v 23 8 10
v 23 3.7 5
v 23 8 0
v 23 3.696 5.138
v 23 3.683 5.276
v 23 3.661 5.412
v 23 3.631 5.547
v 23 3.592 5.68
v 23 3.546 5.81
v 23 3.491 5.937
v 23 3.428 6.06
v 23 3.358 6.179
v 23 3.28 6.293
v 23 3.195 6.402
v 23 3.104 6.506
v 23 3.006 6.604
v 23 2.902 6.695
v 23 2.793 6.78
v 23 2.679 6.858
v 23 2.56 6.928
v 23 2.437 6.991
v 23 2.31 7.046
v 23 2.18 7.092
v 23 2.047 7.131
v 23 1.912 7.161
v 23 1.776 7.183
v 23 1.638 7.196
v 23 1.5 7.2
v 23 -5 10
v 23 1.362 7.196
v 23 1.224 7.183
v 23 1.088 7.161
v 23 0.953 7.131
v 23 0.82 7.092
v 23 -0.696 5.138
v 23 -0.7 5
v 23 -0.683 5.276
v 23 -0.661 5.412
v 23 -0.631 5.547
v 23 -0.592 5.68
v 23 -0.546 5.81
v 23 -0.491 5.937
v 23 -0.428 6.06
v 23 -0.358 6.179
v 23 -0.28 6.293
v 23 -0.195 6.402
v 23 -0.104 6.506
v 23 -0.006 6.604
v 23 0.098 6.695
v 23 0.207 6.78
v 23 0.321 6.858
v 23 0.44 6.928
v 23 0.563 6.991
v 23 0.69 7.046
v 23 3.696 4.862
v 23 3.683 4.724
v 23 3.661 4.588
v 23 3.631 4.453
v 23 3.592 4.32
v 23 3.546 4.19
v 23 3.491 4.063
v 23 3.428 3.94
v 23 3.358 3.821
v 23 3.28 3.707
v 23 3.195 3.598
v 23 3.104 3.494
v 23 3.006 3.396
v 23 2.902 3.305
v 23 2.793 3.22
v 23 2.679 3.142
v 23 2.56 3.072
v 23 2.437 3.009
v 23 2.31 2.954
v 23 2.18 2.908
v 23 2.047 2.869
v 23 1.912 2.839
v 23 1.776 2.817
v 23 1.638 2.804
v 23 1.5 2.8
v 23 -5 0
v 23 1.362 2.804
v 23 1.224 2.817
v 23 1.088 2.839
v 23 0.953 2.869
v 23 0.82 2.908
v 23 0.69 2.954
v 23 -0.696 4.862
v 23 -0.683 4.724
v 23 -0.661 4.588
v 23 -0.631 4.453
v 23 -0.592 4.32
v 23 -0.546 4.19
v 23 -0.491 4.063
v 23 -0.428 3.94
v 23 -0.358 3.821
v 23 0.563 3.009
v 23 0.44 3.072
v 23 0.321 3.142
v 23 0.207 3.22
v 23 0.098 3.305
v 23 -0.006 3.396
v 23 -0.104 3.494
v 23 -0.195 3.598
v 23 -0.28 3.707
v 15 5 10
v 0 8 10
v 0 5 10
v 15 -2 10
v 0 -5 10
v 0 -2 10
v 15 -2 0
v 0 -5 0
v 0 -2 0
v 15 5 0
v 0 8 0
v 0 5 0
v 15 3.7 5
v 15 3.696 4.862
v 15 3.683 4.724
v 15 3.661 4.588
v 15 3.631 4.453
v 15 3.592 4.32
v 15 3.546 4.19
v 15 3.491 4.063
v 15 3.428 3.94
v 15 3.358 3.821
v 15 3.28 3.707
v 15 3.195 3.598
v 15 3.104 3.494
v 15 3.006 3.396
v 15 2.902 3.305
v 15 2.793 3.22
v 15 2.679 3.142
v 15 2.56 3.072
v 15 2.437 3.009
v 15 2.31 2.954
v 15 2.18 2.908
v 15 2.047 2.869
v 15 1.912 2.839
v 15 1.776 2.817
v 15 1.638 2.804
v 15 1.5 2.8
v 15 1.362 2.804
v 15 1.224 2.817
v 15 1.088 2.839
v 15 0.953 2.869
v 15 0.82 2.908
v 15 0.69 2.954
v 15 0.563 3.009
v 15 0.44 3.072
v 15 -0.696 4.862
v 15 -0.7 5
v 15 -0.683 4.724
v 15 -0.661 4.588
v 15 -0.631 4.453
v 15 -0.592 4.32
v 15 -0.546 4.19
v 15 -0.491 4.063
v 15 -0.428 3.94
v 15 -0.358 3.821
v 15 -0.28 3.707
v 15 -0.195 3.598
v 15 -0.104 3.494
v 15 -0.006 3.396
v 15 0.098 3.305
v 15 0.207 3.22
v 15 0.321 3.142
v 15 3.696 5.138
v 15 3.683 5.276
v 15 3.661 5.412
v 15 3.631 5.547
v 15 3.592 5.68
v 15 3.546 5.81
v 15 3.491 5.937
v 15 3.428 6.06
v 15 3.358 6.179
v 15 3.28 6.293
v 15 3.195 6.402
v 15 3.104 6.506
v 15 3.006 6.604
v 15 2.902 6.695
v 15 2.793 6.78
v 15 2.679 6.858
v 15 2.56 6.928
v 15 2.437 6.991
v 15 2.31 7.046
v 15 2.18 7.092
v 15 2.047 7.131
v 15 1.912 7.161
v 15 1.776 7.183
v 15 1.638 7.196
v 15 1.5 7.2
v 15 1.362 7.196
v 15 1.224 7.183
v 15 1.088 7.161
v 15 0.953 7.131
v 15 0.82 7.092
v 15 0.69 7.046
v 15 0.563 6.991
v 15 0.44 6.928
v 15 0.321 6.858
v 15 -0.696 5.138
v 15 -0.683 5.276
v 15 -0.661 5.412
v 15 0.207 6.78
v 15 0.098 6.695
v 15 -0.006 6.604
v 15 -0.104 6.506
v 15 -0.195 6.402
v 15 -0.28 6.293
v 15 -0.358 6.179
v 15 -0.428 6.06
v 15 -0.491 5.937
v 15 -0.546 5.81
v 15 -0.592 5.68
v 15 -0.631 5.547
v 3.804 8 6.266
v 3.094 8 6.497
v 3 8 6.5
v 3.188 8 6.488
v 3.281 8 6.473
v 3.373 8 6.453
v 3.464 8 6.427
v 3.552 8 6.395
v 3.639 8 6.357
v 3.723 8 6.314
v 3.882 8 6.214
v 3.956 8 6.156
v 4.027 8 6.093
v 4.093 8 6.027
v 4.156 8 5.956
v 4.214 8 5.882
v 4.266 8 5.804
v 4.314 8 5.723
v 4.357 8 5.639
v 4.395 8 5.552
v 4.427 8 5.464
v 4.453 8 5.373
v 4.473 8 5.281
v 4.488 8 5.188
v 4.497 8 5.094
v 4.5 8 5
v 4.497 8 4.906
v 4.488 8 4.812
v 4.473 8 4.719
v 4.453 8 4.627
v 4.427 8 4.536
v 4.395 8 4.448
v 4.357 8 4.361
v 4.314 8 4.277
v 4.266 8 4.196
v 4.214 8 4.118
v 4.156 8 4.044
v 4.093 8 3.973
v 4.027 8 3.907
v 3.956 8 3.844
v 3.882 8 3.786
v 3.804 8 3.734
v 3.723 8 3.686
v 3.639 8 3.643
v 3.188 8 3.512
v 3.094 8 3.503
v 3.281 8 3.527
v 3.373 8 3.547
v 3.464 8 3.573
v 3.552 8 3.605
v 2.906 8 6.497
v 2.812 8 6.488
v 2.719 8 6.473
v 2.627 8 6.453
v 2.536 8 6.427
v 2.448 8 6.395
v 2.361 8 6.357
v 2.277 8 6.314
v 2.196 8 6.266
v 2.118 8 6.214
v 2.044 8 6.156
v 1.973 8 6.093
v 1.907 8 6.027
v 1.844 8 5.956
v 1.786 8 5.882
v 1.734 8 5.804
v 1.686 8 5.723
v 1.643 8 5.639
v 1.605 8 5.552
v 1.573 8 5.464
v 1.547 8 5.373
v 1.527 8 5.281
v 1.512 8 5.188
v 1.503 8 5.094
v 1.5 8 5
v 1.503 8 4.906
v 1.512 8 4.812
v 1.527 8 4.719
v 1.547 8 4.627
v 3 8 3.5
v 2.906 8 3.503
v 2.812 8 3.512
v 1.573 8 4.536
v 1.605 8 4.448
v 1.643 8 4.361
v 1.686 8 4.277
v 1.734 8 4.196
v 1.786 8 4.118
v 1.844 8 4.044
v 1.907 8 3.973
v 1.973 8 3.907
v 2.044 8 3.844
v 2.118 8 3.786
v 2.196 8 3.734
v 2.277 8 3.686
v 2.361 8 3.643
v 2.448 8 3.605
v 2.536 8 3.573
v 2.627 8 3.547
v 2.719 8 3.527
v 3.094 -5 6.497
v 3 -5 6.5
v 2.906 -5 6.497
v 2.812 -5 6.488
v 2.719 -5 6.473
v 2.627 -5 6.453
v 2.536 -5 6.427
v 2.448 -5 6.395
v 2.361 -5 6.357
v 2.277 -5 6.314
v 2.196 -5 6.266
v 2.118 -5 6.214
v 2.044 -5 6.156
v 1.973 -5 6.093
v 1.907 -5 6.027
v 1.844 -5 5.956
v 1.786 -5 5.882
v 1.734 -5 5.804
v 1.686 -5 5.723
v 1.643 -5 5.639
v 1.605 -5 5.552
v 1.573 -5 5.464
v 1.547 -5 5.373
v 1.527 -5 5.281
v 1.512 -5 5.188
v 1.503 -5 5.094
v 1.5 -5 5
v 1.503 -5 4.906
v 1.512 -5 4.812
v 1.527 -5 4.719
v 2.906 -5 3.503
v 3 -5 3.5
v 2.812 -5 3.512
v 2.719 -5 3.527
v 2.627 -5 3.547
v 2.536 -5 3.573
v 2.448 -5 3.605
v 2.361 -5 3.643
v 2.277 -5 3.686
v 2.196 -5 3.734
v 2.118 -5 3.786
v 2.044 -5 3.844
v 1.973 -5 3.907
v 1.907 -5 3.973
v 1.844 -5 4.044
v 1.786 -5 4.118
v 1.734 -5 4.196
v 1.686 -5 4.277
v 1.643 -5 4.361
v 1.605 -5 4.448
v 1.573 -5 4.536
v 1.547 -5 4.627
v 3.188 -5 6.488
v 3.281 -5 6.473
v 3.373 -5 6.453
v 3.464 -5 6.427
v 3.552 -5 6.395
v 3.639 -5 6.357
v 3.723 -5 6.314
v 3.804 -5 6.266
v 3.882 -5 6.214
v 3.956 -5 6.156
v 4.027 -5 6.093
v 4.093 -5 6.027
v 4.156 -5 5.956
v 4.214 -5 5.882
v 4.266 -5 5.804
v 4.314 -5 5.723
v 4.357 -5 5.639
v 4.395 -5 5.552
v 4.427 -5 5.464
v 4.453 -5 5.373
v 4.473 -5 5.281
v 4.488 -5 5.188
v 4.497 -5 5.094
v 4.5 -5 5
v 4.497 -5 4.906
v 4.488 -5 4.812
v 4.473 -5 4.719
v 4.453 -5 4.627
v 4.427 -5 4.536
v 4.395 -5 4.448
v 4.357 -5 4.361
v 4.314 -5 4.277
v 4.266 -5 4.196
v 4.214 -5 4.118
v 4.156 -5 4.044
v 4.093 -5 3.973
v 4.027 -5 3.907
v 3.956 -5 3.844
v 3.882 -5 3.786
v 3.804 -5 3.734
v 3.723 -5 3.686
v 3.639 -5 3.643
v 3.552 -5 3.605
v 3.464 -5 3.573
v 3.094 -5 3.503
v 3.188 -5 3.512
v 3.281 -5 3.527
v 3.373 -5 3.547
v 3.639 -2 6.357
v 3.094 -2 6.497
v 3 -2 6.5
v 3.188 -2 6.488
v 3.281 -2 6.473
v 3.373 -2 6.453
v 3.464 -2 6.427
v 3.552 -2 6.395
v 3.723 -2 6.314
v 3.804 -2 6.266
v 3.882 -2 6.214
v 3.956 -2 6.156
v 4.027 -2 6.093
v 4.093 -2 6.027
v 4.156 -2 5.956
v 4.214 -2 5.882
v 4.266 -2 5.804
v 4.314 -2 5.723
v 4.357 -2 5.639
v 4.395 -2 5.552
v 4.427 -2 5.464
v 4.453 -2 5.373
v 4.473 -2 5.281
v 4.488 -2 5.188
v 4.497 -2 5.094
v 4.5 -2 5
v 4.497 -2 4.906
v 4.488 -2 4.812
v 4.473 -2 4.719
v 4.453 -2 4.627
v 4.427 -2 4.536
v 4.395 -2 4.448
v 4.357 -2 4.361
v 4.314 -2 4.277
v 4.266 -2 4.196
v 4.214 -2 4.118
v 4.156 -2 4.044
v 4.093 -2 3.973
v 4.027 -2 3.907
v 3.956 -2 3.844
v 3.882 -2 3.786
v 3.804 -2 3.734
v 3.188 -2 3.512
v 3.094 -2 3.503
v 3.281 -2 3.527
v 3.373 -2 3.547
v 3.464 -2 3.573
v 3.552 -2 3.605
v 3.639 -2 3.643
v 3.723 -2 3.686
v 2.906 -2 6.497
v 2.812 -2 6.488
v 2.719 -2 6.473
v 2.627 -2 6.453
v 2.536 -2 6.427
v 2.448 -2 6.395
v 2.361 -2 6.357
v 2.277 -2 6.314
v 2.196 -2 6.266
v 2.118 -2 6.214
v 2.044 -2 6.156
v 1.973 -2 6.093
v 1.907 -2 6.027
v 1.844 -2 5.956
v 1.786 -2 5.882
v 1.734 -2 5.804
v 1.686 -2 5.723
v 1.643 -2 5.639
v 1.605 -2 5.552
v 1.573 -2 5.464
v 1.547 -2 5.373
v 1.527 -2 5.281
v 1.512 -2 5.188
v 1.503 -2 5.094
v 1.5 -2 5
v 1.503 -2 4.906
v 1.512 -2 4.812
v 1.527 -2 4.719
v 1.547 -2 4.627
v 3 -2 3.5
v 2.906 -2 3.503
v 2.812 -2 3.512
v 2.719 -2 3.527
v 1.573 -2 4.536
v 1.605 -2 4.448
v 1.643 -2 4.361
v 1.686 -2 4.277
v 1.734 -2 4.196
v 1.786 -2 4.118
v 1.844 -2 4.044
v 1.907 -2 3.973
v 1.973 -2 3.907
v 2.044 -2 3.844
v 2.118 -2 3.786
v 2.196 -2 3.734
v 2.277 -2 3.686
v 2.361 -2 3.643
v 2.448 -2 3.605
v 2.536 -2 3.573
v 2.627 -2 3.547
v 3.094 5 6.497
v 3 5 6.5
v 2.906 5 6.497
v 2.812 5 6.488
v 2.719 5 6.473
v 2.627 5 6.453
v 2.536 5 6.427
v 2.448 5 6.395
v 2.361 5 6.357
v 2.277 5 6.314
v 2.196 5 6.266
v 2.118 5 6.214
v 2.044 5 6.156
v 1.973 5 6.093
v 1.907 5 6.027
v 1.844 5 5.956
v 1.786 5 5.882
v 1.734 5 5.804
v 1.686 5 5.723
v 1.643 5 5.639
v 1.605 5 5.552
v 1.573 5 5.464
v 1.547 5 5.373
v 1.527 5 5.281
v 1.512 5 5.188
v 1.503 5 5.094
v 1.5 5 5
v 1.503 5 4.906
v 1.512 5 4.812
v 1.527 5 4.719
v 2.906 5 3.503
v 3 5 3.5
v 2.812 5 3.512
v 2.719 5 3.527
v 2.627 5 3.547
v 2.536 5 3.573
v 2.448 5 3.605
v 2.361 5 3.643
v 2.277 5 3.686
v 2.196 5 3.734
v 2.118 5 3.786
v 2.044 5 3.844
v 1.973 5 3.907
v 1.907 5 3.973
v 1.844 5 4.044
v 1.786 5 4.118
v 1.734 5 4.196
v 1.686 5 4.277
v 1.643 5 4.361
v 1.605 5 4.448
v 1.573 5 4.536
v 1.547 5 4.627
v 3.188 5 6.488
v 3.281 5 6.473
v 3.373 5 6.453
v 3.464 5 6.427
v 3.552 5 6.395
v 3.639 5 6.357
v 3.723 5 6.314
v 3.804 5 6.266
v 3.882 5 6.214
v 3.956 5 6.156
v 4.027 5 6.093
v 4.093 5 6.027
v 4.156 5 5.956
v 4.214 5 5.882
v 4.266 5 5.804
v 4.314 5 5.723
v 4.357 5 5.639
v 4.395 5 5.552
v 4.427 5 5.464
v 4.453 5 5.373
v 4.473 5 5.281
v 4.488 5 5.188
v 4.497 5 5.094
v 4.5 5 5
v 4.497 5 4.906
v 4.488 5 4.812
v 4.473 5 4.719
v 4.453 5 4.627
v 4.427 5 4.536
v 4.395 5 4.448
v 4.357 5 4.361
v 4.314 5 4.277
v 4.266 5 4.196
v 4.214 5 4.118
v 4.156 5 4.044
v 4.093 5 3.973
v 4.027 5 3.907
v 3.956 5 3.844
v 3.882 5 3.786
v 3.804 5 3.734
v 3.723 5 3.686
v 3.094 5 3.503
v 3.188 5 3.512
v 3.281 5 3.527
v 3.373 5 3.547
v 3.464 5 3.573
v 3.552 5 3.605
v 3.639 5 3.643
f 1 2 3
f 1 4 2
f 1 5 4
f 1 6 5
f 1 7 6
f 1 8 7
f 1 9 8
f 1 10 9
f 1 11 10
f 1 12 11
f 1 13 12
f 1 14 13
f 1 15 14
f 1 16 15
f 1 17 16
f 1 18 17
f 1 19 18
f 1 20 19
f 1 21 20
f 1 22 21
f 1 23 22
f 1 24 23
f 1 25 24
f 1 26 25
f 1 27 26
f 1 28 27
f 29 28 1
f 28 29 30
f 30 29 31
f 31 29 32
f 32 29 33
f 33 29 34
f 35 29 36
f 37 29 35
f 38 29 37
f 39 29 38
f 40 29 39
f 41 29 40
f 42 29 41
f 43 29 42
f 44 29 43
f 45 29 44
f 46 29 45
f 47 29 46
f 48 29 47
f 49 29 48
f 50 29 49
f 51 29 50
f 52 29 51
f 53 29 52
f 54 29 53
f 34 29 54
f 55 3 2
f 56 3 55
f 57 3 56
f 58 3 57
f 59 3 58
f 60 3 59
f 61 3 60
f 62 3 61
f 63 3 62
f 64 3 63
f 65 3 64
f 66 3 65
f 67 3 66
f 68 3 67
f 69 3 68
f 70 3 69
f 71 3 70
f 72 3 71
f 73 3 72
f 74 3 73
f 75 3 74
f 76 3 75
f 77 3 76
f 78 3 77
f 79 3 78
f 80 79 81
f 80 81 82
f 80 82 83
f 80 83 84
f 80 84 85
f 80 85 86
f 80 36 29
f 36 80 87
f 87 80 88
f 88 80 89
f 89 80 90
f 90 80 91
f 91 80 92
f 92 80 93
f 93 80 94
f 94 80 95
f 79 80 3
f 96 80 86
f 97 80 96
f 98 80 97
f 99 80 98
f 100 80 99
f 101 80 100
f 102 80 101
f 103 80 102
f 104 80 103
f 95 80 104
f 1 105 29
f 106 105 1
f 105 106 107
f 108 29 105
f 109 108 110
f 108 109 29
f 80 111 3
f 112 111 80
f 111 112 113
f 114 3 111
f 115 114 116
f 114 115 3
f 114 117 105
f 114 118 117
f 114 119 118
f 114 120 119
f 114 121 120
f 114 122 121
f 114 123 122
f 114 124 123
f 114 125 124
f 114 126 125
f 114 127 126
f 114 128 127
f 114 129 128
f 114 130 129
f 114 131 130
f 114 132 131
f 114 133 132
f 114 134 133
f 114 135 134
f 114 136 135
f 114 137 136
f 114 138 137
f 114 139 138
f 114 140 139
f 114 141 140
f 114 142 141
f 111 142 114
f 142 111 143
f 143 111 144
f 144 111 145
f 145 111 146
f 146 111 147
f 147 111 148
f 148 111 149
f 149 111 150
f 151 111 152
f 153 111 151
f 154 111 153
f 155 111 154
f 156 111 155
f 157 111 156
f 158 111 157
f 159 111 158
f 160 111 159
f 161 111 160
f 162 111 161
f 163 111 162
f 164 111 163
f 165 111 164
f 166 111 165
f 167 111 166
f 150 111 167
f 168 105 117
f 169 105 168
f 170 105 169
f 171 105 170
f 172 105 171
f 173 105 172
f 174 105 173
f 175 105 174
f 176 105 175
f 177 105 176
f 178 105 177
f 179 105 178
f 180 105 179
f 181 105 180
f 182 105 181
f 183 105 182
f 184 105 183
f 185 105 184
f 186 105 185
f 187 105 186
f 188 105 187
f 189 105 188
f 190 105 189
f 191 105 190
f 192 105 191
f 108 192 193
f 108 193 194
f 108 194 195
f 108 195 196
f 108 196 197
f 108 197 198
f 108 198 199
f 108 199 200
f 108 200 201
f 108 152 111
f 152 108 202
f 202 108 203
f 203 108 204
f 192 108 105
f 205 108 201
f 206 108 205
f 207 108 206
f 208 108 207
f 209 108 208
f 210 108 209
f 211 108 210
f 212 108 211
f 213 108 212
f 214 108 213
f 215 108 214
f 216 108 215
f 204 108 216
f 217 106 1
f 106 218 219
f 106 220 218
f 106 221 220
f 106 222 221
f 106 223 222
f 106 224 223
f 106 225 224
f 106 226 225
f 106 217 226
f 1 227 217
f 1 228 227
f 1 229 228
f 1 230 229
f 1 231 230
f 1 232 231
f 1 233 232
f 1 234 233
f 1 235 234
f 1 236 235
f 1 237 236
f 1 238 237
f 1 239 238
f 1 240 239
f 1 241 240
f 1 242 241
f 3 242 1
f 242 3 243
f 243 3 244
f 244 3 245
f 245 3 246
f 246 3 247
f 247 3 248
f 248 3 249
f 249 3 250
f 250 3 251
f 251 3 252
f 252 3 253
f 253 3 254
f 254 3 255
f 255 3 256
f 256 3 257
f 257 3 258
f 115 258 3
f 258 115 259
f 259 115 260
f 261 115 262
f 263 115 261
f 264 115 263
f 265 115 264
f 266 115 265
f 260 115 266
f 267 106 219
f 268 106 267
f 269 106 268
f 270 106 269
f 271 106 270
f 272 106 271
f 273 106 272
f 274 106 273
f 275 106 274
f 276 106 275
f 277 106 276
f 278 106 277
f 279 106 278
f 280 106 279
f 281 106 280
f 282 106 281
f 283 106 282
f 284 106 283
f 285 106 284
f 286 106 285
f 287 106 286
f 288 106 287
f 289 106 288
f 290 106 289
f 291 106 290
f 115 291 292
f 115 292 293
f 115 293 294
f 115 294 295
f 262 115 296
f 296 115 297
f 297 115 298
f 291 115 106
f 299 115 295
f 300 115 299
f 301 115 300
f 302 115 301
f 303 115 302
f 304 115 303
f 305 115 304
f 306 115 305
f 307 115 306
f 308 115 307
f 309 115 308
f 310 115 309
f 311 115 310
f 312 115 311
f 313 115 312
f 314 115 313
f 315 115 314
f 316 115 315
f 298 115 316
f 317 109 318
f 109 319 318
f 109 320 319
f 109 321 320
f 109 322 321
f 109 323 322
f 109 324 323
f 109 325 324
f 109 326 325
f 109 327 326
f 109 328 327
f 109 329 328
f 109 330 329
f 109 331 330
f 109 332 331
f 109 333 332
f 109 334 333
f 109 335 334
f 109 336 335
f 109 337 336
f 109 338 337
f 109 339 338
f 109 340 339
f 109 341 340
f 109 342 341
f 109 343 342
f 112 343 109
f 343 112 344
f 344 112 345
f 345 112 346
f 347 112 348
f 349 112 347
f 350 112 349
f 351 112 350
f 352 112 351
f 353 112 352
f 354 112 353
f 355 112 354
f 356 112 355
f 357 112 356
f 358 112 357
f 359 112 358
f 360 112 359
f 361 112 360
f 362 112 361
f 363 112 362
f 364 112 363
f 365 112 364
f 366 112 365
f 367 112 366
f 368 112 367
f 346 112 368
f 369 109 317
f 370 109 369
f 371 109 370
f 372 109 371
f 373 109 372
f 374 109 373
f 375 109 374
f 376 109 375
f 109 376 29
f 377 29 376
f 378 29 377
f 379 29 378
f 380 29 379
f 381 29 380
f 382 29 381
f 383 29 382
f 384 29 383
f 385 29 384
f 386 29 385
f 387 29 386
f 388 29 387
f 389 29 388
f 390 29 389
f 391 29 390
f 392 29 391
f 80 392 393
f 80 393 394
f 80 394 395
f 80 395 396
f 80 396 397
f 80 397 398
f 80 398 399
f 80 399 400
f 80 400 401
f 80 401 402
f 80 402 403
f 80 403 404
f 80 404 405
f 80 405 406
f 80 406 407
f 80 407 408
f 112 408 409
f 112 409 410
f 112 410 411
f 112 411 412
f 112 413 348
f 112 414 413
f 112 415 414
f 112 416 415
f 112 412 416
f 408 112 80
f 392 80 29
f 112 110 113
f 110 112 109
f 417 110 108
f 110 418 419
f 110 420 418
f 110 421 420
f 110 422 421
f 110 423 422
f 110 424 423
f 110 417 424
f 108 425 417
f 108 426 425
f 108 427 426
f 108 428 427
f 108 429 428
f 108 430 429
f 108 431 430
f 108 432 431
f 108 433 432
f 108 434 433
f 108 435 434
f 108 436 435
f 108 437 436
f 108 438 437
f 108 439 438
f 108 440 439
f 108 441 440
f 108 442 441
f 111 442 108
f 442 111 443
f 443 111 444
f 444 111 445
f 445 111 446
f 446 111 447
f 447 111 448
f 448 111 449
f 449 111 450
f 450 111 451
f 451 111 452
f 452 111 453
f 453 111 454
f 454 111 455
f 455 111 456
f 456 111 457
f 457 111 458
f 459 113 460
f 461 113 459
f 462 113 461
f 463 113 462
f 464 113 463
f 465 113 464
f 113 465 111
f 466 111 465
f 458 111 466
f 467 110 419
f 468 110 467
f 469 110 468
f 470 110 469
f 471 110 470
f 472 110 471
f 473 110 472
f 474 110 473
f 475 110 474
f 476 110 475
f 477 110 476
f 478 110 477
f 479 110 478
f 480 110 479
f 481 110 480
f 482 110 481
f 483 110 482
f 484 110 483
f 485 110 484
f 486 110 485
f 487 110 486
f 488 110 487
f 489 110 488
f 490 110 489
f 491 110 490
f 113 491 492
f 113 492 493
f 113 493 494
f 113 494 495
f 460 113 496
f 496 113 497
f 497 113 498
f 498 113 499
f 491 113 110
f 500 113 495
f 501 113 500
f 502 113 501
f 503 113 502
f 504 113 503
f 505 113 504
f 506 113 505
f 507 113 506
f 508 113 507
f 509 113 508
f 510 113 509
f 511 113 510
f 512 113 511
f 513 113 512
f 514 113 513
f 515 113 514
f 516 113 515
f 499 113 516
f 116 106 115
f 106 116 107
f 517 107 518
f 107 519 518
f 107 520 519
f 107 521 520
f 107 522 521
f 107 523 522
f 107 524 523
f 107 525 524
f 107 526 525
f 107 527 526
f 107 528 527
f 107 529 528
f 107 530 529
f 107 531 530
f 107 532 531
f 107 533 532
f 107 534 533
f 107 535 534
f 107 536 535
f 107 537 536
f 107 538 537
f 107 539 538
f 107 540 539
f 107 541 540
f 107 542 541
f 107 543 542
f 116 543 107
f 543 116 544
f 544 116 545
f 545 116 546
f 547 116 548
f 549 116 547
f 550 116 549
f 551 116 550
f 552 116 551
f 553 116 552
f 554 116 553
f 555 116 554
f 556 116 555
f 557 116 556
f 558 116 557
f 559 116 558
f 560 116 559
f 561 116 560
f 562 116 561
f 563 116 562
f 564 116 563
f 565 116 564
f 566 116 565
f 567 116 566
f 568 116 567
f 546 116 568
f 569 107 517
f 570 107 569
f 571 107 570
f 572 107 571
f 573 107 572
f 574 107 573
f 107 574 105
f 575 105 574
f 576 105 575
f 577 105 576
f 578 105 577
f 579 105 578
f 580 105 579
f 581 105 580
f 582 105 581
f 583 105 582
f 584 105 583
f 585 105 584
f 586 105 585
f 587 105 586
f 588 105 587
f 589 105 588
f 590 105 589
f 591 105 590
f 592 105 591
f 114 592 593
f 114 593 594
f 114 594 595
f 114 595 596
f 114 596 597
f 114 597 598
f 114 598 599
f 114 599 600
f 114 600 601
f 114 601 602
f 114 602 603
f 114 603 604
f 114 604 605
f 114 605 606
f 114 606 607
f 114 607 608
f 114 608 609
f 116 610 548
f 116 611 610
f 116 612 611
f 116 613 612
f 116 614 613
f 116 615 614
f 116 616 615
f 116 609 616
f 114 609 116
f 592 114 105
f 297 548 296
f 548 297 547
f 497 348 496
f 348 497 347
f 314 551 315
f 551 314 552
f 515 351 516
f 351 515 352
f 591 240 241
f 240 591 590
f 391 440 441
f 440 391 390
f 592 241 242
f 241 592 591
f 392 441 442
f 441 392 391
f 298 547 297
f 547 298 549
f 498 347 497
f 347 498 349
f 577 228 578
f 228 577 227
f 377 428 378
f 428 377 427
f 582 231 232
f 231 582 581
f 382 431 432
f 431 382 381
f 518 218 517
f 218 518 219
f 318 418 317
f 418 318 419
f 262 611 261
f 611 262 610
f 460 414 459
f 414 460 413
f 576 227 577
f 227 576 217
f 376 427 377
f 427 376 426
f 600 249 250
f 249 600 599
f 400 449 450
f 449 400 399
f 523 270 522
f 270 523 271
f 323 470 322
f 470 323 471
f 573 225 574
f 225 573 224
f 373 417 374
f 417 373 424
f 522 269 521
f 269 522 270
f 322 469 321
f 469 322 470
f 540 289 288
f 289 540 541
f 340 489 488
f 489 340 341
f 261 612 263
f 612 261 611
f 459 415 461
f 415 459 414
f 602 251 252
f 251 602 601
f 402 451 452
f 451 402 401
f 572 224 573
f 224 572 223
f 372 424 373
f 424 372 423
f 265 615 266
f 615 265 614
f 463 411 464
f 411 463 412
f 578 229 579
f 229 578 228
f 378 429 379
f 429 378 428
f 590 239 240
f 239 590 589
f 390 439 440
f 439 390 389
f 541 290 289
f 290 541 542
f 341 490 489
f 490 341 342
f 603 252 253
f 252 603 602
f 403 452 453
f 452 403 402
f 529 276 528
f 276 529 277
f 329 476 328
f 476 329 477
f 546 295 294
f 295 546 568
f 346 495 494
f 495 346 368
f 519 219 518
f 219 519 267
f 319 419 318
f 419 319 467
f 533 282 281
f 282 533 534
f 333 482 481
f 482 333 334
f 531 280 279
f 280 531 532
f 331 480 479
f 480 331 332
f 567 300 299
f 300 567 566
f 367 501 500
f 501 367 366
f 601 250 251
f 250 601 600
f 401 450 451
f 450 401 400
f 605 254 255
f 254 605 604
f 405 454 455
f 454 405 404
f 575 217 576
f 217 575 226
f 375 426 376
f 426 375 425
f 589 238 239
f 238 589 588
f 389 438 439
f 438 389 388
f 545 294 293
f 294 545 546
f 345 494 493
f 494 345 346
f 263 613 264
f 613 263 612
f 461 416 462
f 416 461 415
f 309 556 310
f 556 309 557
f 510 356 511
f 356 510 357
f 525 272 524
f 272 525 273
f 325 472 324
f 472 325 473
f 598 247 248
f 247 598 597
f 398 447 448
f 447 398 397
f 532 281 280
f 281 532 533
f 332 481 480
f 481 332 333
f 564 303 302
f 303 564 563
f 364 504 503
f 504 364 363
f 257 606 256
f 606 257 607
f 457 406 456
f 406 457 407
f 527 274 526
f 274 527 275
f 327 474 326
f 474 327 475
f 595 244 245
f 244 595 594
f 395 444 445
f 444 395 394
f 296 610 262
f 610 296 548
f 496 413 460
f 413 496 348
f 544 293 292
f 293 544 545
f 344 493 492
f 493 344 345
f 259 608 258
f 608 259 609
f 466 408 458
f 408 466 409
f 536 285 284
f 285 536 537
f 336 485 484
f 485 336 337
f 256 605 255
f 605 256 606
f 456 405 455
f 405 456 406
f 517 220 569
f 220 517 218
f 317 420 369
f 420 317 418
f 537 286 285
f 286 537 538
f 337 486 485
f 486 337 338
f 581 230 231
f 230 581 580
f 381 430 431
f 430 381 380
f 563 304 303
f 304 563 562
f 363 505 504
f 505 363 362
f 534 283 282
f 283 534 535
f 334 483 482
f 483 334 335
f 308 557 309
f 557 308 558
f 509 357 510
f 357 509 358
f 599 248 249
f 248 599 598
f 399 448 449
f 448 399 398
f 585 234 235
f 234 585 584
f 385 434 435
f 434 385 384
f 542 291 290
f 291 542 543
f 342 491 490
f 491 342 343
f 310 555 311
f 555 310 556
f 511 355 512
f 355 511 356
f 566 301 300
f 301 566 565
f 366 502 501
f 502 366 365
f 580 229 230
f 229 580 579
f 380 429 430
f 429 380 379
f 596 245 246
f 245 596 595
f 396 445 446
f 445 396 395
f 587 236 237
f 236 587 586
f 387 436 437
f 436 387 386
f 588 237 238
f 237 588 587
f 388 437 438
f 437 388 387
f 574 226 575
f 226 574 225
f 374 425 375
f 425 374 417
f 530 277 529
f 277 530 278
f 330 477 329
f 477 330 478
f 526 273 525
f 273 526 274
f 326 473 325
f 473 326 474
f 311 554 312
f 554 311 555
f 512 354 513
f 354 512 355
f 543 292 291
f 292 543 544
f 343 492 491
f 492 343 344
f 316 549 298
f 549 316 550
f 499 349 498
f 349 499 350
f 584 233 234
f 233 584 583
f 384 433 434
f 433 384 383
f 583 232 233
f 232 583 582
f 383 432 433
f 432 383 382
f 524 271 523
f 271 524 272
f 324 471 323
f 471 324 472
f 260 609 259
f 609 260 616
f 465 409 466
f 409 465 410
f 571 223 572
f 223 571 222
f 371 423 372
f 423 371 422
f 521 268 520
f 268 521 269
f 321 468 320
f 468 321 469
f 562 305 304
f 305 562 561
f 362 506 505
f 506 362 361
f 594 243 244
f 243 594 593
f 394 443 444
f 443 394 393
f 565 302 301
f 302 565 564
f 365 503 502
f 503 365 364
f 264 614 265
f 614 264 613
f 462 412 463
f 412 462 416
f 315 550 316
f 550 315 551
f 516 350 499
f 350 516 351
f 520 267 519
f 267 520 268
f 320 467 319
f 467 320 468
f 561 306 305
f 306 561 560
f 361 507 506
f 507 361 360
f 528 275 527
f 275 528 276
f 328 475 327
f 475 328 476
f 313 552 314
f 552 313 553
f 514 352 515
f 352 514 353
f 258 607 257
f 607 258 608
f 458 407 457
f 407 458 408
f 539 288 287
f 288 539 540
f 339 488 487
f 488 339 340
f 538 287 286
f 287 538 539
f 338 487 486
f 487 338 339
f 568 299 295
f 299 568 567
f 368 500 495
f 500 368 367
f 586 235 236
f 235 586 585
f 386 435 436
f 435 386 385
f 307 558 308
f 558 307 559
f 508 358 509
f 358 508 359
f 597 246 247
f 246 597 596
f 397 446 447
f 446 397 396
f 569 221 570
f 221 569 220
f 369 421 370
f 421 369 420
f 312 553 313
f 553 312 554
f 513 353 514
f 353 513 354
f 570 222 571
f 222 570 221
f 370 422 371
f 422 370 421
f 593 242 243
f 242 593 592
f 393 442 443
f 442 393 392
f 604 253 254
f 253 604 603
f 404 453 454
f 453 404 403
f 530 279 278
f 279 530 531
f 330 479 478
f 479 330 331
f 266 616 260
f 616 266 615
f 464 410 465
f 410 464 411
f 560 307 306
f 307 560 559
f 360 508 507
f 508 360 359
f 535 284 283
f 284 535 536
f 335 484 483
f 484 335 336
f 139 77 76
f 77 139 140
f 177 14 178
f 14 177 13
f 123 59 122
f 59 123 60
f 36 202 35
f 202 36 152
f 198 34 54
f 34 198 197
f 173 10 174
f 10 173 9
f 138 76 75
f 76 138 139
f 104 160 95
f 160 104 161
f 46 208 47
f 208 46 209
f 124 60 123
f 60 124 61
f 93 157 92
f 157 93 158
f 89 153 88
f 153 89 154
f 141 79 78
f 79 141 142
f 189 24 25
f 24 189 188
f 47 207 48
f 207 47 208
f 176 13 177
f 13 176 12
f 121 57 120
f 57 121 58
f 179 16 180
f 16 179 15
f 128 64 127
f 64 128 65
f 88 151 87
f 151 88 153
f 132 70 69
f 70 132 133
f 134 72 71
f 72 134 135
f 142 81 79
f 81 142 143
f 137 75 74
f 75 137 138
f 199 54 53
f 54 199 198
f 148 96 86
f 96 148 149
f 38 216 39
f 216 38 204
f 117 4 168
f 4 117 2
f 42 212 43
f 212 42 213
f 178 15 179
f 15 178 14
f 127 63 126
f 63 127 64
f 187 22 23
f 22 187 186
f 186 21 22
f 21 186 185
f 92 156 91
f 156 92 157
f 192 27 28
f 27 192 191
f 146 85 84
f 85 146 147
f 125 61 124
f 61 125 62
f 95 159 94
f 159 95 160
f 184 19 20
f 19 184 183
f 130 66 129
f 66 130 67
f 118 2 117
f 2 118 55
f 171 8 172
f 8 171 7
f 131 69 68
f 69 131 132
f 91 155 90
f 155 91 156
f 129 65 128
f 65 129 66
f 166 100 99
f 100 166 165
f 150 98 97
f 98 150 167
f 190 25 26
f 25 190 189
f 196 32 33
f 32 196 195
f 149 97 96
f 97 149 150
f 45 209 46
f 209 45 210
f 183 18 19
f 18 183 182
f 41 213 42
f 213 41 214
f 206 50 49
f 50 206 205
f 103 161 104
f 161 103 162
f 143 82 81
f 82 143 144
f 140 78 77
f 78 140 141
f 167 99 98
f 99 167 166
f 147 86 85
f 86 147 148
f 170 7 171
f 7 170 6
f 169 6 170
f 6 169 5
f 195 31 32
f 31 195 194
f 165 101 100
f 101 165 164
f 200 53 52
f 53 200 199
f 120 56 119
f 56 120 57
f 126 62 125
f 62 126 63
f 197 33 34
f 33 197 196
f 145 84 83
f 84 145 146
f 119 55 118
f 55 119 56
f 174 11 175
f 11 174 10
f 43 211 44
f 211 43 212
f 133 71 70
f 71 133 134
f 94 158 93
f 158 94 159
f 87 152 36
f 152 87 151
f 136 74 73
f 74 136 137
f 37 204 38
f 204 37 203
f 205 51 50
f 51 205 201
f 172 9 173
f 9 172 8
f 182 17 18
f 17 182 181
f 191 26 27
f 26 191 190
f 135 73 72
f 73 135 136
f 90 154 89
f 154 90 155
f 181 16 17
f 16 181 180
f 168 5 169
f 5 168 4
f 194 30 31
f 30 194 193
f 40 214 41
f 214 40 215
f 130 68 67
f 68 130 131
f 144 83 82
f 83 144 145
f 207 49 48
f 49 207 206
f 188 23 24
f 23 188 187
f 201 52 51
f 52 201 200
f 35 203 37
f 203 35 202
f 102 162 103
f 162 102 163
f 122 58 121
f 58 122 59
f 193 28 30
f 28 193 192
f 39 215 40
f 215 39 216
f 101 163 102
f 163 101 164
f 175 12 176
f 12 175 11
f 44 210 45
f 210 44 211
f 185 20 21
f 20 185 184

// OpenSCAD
difference(){
	union(){

        translate([15,-5,0]){
            cube([8,13,10], center=false);
        }         

        translate([0,-5,0]){
            cube([15,3,10], center=false);
        }         
        translate([0,5,0]){
            cube([15,3,10], center=false);
        }         

	}
	union() {
        translate([3,15,5]){
            rotate([90,0,0]){
                cylinder(h=117, r=1.5, $fn=100, center=false);
            }
        }         
        translate([0,1.5,5]){
            rotate([0,90,0]){
                cylinder(h=117, r=2.2, $fn=100, center=false);
            }
        }         

        
	}
}
